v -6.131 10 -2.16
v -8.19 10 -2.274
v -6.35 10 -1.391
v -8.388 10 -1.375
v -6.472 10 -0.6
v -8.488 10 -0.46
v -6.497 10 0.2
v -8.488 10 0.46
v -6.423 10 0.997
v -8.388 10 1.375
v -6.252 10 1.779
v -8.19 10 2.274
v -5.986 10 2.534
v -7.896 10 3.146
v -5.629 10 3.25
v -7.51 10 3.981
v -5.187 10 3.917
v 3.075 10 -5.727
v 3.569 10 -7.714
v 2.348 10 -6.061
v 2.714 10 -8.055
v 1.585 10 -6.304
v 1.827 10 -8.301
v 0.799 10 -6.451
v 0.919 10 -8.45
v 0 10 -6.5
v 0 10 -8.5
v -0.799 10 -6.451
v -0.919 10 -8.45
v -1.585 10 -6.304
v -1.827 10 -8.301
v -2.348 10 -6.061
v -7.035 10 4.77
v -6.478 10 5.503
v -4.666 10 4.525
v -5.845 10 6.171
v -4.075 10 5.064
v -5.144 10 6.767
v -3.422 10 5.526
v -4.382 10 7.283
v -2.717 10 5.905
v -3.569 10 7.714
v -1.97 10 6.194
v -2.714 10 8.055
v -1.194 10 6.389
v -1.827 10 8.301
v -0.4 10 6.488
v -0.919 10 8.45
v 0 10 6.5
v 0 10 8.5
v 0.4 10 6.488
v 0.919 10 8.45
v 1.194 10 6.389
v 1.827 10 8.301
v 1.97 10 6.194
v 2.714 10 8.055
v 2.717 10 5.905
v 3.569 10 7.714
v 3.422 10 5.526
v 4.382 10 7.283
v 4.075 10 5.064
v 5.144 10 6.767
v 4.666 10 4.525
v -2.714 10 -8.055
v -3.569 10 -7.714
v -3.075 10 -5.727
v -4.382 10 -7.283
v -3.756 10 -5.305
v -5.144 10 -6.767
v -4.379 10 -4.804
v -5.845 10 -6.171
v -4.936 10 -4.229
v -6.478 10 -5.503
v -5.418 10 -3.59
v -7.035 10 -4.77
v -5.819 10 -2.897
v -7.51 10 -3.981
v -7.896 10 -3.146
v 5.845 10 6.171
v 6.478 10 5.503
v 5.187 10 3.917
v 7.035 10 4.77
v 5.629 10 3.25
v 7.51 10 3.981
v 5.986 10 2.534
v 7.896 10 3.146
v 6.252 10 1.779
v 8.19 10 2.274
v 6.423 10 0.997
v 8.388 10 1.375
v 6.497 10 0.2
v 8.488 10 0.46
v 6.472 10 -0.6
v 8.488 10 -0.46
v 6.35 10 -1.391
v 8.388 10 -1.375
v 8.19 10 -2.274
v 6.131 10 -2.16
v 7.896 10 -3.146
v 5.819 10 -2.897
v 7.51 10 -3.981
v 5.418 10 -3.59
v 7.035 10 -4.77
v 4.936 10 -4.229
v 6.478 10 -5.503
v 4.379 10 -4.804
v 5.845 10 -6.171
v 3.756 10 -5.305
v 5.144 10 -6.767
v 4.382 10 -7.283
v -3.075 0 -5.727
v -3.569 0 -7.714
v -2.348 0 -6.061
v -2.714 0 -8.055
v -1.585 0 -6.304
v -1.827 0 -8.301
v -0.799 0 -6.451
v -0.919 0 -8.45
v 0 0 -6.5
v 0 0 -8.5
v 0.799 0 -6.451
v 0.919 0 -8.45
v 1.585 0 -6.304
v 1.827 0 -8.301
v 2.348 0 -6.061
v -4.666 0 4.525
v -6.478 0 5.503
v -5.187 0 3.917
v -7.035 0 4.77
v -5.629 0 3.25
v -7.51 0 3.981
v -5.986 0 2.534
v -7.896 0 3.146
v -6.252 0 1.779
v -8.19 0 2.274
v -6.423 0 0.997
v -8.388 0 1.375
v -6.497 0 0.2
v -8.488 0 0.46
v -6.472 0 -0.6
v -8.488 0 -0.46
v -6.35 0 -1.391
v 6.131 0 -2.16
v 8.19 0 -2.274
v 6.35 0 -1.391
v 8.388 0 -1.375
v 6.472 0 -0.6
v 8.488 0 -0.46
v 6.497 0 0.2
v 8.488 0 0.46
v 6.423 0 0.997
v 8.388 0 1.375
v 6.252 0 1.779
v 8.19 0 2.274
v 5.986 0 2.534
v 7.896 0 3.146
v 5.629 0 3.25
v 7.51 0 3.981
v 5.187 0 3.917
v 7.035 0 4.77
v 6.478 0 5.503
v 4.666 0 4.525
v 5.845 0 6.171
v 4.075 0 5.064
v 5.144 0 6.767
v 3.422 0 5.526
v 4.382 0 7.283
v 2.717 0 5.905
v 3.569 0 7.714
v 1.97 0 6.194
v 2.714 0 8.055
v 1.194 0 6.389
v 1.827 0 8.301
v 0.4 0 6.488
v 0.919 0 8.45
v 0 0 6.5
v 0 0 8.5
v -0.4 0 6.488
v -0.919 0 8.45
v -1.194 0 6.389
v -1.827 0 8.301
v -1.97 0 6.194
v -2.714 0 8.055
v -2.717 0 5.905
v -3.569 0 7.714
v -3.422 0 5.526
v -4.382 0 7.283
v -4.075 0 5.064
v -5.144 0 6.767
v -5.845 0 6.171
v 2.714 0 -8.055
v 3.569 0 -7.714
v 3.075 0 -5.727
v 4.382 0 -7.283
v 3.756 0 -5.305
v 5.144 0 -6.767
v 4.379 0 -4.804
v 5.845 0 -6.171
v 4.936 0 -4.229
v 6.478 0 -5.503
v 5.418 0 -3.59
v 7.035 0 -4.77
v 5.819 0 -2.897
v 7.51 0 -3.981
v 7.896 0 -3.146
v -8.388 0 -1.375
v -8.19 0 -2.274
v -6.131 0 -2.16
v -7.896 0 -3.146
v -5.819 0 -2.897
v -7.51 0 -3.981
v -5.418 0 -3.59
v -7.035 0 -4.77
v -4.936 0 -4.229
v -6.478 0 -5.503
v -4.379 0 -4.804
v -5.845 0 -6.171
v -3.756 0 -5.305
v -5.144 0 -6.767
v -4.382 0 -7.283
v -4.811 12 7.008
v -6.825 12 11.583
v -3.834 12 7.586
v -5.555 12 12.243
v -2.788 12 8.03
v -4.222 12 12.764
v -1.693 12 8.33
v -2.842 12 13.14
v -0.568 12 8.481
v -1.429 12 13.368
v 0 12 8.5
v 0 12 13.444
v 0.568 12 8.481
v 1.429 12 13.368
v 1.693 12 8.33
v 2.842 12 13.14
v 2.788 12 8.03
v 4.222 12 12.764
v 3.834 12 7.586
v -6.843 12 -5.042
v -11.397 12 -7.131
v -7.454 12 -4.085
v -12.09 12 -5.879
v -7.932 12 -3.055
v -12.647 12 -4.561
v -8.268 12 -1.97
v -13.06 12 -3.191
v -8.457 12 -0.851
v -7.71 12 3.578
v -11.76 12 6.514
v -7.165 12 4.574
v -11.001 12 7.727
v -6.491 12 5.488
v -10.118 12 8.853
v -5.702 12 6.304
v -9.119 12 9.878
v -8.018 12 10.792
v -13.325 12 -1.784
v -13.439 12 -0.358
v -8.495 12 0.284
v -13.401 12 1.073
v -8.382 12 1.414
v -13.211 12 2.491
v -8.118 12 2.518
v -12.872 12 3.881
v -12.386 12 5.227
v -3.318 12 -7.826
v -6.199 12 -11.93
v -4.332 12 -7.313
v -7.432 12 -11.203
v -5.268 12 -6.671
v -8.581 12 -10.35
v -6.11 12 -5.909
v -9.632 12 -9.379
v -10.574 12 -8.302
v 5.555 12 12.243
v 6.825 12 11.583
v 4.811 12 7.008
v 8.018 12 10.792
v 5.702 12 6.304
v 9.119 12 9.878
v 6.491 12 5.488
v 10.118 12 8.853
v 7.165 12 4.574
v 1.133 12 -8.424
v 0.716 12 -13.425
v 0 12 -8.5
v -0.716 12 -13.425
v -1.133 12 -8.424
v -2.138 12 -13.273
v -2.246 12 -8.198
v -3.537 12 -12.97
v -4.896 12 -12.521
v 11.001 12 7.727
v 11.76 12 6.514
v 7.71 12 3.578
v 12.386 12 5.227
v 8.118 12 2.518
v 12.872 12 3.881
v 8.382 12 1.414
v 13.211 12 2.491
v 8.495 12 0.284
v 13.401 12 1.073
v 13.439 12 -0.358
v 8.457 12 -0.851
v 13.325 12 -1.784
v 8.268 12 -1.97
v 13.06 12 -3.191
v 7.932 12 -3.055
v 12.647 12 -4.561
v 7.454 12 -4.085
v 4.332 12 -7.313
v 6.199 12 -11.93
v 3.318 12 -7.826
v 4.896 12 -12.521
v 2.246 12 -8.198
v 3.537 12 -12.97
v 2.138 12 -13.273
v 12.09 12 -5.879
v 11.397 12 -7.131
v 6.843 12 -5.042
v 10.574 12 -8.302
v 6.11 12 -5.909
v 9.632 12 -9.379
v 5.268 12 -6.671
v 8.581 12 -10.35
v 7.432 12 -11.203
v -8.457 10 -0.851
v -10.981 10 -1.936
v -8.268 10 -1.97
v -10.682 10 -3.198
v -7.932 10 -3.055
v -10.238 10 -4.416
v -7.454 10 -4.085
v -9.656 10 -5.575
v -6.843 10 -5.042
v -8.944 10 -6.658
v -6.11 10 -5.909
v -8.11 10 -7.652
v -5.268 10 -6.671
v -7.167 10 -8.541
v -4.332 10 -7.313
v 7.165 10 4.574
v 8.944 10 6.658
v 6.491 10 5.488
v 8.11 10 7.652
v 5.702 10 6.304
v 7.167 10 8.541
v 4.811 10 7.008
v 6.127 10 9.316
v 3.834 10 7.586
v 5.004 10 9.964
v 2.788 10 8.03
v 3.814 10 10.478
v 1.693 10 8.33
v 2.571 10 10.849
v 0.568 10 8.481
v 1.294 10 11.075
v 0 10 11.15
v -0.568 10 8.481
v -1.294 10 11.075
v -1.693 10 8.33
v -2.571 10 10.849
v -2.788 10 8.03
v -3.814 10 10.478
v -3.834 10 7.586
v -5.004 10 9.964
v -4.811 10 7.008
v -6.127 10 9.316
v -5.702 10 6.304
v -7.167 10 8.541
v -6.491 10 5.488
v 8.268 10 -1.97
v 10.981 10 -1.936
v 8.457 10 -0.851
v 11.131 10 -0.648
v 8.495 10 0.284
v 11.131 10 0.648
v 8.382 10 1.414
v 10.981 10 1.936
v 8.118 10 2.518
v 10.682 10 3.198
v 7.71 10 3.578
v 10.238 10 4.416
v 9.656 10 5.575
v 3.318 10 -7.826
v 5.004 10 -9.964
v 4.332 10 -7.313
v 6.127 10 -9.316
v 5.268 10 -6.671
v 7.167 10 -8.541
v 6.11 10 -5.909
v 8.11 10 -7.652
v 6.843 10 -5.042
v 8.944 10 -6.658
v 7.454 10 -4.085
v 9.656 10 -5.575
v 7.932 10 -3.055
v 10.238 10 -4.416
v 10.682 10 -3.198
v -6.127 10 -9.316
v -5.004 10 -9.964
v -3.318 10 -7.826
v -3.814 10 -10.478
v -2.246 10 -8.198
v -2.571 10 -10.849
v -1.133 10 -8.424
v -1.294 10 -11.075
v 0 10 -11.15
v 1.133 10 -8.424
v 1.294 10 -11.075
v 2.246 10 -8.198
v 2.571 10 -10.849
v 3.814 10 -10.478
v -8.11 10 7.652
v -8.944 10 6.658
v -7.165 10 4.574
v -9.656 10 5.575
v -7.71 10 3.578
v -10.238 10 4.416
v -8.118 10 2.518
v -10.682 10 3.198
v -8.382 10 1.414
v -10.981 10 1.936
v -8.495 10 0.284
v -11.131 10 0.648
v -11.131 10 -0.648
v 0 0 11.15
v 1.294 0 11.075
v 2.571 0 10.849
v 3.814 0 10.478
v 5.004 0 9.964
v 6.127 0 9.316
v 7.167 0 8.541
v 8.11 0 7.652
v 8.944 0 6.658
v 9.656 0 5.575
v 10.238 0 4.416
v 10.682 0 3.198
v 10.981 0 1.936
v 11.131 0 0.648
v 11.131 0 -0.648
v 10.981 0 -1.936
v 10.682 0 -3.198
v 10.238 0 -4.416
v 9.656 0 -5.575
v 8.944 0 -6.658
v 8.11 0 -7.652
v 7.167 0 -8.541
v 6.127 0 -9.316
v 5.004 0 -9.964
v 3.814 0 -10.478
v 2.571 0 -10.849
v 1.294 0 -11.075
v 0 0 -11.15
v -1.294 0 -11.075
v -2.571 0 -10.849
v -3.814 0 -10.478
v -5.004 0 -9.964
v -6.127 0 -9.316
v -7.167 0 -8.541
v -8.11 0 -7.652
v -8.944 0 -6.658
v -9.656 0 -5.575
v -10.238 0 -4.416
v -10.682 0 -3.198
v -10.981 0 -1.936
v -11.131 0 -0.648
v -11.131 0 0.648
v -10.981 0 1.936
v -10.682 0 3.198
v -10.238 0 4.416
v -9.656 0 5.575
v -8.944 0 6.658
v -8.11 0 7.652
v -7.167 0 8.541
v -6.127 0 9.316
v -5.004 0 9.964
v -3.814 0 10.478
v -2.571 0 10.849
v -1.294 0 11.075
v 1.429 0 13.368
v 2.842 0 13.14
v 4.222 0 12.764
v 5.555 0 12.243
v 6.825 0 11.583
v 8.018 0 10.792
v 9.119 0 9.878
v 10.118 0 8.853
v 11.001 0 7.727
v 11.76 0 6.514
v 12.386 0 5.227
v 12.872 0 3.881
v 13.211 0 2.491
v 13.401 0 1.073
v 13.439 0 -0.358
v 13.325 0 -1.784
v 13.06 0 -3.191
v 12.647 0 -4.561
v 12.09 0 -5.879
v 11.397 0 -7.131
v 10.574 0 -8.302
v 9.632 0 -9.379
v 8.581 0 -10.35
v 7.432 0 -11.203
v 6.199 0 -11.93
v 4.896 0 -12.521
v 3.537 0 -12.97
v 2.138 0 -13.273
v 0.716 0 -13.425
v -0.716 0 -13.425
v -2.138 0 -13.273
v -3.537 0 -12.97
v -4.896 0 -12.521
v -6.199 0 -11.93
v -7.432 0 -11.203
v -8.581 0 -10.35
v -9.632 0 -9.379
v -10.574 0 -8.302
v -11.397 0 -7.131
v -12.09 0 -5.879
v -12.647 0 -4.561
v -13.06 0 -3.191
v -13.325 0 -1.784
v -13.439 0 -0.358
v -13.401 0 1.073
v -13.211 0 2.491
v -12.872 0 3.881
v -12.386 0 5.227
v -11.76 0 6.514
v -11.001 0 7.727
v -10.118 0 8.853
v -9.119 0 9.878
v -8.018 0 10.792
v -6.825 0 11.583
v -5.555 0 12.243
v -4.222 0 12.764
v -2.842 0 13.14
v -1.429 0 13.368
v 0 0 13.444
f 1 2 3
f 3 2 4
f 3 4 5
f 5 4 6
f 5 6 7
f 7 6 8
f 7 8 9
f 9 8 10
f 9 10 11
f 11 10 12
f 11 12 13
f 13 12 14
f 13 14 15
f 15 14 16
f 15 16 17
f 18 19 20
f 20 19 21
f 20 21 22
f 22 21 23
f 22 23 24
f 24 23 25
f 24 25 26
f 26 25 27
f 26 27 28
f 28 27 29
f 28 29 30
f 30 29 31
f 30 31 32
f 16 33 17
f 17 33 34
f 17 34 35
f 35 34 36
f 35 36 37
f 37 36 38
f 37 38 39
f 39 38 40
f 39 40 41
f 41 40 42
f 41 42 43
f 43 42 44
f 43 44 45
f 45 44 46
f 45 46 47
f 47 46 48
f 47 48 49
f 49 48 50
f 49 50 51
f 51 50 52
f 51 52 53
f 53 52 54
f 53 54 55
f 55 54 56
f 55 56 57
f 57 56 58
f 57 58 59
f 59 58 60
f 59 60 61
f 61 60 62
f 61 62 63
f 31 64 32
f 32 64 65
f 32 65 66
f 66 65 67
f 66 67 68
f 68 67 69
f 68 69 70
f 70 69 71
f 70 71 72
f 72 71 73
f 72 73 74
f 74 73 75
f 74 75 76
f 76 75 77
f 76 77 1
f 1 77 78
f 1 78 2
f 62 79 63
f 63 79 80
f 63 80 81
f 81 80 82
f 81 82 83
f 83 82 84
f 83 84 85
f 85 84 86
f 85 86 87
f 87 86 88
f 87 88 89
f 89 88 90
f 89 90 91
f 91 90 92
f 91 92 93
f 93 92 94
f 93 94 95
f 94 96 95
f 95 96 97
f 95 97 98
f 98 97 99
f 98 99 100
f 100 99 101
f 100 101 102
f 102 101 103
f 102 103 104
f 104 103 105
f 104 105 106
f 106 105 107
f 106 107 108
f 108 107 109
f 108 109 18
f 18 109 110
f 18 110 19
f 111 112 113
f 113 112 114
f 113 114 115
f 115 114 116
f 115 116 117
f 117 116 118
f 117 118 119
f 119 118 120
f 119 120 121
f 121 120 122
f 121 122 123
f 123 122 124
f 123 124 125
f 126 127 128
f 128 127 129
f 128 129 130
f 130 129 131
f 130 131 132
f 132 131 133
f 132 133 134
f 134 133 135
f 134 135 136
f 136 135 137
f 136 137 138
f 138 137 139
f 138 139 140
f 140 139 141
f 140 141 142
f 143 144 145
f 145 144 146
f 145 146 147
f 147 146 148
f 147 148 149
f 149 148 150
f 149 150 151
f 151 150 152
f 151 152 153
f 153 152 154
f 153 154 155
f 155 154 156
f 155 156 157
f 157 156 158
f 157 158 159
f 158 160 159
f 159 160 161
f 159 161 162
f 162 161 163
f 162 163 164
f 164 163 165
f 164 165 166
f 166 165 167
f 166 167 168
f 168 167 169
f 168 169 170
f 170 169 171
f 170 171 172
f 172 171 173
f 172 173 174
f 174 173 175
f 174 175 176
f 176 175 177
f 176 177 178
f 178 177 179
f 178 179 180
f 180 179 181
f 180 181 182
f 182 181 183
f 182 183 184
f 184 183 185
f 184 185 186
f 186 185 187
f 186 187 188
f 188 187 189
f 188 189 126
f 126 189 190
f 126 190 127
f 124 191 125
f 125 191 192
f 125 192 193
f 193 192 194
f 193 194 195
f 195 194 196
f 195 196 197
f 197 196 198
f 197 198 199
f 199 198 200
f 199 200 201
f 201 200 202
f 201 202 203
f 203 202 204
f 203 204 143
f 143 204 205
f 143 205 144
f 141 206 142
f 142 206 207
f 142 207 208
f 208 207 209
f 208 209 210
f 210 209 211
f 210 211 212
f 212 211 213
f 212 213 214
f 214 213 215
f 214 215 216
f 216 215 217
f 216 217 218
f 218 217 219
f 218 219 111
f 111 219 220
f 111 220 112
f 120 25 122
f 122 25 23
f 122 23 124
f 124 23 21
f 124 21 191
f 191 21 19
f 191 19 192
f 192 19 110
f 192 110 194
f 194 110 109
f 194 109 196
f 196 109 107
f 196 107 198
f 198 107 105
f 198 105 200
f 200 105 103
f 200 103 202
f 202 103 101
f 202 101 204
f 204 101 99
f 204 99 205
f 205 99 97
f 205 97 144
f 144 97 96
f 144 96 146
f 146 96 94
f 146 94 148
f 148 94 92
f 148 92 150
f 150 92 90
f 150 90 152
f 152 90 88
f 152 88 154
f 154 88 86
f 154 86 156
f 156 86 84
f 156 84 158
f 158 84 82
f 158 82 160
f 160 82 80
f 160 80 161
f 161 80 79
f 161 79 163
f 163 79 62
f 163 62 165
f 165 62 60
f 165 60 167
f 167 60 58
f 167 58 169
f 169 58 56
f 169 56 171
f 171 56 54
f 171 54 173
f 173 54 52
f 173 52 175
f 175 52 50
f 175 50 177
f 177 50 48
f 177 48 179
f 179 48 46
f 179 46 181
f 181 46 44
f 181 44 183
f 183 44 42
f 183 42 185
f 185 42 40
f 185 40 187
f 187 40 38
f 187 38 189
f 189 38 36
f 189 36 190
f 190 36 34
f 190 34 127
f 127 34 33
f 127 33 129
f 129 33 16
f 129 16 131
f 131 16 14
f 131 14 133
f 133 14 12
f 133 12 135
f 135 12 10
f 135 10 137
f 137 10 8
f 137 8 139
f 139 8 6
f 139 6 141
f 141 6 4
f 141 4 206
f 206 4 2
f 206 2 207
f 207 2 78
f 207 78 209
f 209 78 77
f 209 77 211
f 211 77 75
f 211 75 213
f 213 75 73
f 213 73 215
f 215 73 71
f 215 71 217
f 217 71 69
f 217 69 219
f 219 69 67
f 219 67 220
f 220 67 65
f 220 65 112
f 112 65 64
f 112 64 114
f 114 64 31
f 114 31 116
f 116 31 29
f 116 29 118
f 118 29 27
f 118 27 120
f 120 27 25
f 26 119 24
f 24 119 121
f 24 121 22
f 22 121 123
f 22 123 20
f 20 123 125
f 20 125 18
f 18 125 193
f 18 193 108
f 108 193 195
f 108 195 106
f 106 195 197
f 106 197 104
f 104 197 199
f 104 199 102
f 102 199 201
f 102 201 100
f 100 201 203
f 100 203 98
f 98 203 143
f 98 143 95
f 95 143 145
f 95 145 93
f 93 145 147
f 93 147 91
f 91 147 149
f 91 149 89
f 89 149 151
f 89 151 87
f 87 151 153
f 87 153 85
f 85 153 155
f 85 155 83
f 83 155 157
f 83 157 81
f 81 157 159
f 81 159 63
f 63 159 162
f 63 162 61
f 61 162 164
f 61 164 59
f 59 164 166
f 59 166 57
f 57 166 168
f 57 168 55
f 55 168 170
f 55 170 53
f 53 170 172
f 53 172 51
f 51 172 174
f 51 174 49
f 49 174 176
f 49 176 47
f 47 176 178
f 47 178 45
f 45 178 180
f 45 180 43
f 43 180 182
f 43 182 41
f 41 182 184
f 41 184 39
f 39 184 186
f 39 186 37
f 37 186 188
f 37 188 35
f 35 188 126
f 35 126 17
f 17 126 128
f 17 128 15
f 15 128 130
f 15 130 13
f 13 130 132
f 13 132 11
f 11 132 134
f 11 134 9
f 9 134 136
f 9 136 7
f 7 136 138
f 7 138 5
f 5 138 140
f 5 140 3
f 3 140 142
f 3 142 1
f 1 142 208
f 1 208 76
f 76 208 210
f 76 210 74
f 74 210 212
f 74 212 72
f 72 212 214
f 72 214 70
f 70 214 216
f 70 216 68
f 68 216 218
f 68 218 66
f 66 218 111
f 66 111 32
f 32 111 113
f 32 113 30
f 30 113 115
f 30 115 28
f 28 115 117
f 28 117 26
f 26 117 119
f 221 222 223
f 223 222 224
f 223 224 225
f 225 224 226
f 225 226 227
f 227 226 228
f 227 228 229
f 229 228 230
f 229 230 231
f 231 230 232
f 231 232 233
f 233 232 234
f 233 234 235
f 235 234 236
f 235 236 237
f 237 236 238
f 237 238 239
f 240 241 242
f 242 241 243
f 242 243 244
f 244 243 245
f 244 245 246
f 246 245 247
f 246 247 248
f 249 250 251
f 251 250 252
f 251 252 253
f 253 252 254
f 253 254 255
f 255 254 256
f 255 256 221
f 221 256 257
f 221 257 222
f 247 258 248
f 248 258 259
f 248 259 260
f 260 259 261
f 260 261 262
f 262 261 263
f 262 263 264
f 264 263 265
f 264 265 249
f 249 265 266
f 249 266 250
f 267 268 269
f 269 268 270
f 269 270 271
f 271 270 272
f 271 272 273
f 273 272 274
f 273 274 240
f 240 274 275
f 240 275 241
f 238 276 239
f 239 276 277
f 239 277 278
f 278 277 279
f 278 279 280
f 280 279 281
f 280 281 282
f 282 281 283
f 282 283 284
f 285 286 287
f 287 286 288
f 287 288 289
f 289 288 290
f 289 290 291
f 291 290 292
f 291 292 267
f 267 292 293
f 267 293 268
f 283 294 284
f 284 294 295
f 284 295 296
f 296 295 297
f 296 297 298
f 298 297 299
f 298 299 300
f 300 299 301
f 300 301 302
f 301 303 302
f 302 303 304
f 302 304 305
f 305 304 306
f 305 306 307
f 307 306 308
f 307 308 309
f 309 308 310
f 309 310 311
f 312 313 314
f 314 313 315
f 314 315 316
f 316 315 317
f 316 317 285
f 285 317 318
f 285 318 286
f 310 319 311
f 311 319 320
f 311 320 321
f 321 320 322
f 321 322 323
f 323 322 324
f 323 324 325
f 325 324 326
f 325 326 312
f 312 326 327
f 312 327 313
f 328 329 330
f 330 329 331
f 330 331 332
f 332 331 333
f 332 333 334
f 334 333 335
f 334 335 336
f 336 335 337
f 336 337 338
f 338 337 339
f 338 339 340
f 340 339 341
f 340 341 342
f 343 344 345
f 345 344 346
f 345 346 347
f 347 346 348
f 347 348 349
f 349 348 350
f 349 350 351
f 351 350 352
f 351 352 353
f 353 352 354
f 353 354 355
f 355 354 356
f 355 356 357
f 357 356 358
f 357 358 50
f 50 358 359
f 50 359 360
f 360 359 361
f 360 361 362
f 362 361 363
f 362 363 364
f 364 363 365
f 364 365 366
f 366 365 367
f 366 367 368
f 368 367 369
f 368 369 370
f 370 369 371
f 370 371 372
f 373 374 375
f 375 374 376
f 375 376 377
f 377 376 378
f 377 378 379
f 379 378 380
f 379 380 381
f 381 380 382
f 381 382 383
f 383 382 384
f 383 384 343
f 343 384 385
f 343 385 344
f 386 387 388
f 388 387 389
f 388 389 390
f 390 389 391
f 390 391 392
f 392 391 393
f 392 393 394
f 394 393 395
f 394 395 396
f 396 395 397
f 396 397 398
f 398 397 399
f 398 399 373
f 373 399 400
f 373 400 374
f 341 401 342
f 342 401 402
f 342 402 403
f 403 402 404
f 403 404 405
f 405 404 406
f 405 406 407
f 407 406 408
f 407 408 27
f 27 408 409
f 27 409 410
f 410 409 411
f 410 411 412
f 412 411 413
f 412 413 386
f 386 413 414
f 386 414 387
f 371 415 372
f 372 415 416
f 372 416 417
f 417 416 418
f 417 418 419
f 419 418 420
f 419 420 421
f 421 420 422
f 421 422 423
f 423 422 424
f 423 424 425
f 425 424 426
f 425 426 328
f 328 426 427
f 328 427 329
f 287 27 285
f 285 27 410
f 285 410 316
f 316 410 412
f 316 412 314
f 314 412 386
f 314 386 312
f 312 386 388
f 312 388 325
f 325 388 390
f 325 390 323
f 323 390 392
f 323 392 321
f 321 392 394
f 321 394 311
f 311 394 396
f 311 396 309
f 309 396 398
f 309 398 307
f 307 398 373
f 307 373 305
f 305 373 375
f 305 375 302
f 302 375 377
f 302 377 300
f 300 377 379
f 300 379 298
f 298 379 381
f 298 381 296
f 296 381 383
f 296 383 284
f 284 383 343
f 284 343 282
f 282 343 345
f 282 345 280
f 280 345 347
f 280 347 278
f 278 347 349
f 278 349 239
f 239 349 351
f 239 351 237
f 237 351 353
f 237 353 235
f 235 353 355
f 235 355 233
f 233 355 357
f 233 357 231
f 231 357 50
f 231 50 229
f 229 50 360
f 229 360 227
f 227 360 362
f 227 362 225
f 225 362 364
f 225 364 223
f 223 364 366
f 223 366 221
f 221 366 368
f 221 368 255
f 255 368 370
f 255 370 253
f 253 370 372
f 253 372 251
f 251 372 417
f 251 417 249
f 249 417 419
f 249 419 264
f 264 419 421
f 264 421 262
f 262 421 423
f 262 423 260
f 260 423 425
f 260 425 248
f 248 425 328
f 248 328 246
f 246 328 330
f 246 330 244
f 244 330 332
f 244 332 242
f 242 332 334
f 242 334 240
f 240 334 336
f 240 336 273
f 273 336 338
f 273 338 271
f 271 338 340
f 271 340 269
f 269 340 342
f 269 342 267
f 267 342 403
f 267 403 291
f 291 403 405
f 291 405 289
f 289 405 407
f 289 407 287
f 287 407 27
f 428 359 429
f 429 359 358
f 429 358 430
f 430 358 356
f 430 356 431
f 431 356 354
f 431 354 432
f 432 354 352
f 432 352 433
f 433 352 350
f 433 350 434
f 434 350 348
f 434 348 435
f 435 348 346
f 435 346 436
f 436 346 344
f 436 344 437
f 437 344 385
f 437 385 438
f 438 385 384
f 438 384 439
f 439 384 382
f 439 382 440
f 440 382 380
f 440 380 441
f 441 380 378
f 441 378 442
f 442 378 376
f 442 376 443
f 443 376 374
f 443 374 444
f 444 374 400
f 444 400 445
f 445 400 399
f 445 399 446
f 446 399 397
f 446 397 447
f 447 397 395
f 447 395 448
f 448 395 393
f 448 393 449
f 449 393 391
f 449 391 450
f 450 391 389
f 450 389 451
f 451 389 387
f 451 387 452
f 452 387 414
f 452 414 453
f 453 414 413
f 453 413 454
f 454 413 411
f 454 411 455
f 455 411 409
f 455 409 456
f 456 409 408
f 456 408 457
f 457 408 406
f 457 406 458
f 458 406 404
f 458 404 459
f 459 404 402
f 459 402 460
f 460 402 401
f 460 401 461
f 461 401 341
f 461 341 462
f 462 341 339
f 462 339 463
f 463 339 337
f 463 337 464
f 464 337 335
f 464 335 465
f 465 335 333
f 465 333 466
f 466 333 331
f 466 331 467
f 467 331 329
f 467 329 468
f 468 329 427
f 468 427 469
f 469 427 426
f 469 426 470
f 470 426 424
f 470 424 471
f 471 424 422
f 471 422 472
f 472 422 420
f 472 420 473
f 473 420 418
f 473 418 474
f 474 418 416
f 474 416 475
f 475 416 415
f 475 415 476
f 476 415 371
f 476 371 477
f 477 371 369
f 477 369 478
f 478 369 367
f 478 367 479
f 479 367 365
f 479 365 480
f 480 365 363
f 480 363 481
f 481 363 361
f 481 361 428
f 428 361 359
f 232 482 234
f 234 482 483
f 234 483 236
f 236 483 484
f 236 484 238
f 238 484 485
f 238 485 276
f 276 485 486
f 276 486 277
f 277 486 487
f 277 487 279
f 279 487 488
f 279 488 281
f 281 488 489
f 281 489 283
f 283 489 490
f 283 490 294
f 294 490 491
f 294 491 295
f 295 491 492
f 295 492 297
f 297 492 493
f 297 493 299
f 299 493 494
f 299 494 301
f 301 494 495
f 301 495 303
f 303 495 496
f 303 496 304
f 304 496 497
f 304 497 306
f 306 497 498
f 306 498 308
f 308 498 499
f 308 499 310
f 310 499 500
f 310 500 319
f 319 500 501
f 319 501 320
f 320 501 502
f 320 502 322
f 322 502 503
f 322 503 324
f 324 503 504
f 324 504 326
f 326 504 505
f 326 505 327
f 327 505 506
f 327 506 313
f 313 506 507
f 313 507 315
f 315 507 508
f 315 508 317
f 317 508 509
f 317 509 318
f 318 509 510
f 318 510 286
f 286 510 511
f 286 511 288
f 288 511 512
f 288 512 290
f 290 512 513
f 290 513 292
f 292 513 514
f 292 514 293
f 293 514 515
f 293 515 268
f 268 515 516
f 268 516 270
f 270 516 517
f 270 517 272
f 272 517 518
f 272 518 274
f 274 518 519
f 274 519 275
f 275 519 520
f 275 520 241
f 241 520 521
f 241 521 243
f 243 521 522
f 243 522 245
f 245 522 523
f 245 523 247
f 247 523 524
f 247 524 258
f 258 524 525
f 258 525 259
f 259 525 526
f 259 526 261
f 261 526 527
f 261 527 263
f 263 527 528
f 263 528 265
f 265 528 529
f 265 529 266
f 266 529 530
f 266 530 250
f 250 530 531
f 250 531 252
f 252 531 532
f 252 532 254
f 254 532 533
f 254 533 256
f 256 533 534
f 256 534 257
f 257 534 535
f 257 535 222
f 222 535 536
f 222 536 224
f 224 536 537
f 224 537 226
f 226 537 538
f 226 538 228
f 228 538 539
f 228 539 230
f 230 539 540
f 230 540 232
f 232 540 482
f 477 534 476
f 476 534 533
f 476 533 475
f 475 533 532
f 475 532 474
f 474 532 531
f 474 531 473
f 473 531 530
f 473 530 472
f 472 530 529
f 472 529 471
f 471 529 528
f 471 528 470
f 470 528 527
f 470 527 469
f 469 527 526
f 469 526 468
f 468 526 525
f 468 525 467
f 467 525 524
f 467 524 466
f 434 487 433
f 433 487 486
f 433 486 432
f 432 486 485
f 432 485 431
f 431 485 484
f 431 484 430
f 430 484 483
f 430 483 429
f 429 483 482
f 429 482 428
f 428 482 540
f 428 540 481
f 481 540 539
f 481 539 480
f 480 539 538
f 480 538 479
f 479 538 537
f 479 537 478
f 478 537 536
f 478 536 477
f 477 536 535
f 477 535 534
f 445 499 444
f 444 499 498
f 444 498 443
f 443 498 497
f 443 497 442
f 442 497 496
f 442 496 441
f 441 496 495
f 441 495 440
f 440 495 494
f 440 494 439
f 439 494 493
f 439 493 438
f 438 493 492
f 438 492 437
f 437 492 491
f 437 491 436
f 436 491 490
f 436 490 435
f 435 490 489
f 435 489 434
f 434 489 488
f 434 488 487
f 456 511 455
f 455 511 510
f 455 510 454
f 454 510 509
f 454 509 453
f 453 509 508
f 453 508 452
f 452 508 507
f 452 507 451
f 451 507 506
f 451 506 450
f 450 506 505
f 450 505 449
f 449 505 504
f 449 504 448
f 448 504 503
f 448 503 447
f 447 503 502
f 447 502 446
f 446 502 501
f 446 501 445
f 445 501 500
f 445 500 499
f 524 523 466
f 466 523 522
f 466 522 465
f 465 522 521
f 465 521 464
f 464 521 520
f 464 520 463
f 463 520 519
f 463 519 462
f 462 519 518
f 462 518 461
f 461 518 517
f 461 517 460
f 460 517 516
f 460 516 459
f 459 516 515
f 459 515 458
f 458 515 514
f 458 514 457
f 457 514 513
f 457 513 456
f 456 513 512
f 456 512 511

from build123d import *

# Parameters (mm, degrees)
SKETCH1_R           = 8.5
SKETCH1_R_2         = 6.5
BOSS_EXTRUDE1_DEPTH = 10
SKETCH2_R           = 11.15
SKETCH2_R_2         = 8.5
BOSS_EXTRUDE2_DEPTH = 2
SKETCH3_R           = 13.443954772
SKETCH3_R_2         = 11.15
BOSS_EXTRUDE3_DEPTH = 12


with BuildPart() as part:
    # Sketch1 → Boss-Extrude1 (new body)
    with BuildSketch(Plane(origin=(0, 0, 0), x_dir=(1, 0, 0), z_dir=(0, 1, 0))):
        with Locations(Location((0, 0, 0), (0, 0, 270))):
            Circle(SKETCH1_R)
        with Locations(Location((0, 0, 0), (0, 0, 270))):
            Circle(SKETCH1_R_2, mode=Mode.SUBTRACT)
    extrude(amount=BOSS_EXTRUDE1_DEPTH)


with BuildPart() as body_2:
    # Sketch2 → Boss-Extrude2 (new body)
    with BuildSketch(Plane(origin=(0, 10, 0), x_dir=(1, 0, 0), z_dir=(0, 1, 0))):
        with Locations(Location((0, 0, 0), (0, 0, 270))):
            Circle(SKETCH2_R)
        with Locations(Location((0, 0, 0), (0, 0, 270))):
            Circle(SKETCH2_R_2, mode=Mode.SUBTRACT)
    extrude(amount=BOSS_EXTRUDE2_DEPTH)

    # Sketch3 → Boss-Extrude3 (add)
    with BuildSketch(Plane(origin=(0, 12, 0), x_dir=(1, 0, 0), z_dir=(0, 1, 0))):
        with Locations(Location((0, 0, 0), (0, 0, 270))):
            Circle(SKETCH3_R)
        with Locations(Location((0, 0, 0), (0, 0, 270))):
            Circle(SKETCH3_R_2, mode=Mode.SUBTRACT)
    extrude(amount=-BOSS_EXTRUDE3_DEPTH)


solid = Compound([part.part, body_2.part])
